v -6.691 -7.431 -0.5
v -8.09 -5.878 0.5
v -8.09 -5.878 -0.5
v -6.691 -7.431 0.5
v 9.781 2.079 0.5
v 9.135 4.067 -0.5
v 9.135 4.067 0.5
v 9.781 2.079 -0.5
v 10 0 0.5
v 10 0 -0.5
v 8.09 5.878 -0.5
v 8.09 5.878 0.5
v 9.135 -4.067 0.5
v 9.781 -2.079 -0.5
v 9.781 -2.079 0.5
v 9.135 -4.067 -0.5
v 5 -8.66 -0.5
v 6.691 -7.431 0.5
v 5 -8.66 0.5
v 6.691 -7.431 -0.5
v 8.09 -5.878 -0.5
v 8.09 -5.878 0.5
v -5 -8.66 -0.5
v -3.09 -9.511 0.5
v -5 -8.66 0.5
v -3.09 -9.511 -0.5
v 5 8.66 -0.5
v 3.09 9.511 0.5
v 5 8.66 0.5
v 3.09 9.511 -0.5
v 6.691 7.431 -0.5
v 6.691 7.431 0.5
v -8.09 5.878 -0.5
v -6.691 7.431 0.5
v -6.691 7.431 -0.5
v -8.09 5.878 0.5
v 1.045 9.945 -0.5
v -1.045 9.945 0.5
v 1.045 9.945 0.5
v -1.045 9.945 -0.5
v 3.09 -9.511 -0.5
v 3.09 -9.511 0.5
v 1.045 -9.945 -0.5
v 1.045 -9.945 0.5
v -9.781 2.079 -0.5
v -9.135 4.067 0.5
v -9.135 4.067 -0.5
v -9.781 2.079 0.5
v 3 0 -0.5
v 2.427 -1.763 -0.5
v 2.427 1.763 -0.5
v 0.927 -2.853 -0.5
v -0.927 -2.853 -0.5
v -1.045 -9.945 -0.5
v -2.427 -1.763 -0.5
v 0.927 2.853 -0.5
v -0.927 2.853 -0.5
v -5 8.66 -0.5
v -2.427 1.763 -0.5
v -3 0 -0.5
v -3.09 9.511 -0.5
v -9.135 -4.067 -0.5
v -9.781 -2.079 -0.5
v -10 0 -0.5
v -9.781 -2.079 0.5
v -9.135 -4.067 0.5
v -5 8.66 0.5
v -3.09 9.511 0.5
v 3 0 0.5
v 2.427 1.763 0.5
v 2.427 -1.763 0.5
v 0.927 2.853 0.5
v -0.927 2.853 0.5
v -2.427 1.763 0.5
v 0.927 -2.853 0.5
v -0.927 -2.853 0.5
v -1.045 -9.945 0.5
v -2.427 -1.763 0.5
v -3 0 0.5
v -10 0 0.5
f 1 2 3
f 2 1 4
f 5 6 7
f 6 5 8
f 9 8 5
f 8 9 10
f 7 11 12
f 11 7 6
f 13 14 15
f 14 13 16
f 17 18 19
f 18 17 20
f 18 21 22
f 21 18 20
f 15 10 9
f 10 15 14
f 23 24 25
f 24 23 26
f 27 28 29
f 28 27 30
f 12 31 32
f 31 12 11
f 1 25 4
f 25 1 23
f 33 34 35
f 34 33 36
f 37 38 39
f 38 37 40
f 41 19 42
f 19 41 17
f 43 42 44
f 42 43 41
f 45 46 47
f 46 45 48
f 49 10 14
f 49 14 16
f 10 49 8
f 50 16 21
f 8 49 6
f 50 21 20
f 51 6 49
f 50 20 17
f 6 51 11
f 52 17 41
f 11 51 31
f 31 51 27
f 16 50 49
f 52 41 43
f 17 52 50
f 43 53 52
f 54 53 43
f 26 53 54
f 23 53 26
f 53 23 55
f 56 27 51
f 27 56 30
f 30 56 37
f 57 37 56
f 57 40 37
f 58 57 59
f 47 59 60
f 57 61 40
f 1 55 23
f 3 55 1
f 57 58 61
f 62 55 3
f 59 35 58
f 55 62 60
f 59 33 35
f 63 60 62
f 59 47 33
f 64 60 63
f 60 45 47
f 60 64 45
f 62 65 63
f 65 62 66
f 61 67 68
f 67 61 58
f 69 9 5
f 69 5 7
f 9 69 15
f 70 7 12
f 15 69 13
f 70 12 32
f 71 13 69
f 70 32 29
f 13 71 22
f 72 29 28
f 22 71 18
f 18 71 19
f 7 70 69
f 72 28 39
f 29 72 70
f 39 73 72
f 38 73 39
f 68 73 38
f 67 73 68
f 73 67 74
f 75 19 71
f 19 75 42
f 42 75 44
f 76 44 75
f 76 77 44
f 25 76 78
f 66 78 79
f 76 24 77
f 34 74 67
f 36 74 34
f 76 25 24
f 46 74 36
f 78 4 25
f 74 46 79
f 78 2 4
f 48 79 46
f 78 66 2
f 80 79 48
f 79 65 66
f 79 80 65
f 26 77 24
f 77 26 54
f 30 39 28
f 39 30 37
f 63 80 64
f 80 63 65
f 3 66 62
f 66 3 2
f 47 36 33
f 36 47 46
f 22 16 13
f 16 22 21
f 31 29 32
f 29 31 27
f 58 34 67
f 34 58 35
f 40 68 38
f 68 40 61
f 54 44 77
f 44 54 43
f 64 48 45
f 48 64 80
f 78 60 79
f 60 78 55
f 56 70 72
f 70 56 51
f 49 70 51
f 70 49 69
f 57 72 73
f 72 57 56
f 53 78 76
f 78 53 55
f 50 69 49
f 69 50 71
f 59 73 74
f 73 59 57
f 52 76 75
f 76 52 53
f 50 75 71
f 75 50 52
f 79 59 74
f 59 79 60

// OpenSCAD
// Spacer Ring Component
// Description: A flat, circular ring with a smooth surface and a central hole.
// Adjusted to match the original model with a thinner profile.

module spacer_ring() {
    difference() {
        // Outer cylinder (ring body) - Reduced thickness to match the original model
        cylinder(h=1, r=10, center=true); // Thickness reduced from 2 to 1
        // Inner cylinder (hole)
        translate([0, 0, -0.5]) cylinder(h=2, r=3, center=true); // Adjusted height to match thinner profile
    }
}

// Render the spacer ring
spacer_ring();
